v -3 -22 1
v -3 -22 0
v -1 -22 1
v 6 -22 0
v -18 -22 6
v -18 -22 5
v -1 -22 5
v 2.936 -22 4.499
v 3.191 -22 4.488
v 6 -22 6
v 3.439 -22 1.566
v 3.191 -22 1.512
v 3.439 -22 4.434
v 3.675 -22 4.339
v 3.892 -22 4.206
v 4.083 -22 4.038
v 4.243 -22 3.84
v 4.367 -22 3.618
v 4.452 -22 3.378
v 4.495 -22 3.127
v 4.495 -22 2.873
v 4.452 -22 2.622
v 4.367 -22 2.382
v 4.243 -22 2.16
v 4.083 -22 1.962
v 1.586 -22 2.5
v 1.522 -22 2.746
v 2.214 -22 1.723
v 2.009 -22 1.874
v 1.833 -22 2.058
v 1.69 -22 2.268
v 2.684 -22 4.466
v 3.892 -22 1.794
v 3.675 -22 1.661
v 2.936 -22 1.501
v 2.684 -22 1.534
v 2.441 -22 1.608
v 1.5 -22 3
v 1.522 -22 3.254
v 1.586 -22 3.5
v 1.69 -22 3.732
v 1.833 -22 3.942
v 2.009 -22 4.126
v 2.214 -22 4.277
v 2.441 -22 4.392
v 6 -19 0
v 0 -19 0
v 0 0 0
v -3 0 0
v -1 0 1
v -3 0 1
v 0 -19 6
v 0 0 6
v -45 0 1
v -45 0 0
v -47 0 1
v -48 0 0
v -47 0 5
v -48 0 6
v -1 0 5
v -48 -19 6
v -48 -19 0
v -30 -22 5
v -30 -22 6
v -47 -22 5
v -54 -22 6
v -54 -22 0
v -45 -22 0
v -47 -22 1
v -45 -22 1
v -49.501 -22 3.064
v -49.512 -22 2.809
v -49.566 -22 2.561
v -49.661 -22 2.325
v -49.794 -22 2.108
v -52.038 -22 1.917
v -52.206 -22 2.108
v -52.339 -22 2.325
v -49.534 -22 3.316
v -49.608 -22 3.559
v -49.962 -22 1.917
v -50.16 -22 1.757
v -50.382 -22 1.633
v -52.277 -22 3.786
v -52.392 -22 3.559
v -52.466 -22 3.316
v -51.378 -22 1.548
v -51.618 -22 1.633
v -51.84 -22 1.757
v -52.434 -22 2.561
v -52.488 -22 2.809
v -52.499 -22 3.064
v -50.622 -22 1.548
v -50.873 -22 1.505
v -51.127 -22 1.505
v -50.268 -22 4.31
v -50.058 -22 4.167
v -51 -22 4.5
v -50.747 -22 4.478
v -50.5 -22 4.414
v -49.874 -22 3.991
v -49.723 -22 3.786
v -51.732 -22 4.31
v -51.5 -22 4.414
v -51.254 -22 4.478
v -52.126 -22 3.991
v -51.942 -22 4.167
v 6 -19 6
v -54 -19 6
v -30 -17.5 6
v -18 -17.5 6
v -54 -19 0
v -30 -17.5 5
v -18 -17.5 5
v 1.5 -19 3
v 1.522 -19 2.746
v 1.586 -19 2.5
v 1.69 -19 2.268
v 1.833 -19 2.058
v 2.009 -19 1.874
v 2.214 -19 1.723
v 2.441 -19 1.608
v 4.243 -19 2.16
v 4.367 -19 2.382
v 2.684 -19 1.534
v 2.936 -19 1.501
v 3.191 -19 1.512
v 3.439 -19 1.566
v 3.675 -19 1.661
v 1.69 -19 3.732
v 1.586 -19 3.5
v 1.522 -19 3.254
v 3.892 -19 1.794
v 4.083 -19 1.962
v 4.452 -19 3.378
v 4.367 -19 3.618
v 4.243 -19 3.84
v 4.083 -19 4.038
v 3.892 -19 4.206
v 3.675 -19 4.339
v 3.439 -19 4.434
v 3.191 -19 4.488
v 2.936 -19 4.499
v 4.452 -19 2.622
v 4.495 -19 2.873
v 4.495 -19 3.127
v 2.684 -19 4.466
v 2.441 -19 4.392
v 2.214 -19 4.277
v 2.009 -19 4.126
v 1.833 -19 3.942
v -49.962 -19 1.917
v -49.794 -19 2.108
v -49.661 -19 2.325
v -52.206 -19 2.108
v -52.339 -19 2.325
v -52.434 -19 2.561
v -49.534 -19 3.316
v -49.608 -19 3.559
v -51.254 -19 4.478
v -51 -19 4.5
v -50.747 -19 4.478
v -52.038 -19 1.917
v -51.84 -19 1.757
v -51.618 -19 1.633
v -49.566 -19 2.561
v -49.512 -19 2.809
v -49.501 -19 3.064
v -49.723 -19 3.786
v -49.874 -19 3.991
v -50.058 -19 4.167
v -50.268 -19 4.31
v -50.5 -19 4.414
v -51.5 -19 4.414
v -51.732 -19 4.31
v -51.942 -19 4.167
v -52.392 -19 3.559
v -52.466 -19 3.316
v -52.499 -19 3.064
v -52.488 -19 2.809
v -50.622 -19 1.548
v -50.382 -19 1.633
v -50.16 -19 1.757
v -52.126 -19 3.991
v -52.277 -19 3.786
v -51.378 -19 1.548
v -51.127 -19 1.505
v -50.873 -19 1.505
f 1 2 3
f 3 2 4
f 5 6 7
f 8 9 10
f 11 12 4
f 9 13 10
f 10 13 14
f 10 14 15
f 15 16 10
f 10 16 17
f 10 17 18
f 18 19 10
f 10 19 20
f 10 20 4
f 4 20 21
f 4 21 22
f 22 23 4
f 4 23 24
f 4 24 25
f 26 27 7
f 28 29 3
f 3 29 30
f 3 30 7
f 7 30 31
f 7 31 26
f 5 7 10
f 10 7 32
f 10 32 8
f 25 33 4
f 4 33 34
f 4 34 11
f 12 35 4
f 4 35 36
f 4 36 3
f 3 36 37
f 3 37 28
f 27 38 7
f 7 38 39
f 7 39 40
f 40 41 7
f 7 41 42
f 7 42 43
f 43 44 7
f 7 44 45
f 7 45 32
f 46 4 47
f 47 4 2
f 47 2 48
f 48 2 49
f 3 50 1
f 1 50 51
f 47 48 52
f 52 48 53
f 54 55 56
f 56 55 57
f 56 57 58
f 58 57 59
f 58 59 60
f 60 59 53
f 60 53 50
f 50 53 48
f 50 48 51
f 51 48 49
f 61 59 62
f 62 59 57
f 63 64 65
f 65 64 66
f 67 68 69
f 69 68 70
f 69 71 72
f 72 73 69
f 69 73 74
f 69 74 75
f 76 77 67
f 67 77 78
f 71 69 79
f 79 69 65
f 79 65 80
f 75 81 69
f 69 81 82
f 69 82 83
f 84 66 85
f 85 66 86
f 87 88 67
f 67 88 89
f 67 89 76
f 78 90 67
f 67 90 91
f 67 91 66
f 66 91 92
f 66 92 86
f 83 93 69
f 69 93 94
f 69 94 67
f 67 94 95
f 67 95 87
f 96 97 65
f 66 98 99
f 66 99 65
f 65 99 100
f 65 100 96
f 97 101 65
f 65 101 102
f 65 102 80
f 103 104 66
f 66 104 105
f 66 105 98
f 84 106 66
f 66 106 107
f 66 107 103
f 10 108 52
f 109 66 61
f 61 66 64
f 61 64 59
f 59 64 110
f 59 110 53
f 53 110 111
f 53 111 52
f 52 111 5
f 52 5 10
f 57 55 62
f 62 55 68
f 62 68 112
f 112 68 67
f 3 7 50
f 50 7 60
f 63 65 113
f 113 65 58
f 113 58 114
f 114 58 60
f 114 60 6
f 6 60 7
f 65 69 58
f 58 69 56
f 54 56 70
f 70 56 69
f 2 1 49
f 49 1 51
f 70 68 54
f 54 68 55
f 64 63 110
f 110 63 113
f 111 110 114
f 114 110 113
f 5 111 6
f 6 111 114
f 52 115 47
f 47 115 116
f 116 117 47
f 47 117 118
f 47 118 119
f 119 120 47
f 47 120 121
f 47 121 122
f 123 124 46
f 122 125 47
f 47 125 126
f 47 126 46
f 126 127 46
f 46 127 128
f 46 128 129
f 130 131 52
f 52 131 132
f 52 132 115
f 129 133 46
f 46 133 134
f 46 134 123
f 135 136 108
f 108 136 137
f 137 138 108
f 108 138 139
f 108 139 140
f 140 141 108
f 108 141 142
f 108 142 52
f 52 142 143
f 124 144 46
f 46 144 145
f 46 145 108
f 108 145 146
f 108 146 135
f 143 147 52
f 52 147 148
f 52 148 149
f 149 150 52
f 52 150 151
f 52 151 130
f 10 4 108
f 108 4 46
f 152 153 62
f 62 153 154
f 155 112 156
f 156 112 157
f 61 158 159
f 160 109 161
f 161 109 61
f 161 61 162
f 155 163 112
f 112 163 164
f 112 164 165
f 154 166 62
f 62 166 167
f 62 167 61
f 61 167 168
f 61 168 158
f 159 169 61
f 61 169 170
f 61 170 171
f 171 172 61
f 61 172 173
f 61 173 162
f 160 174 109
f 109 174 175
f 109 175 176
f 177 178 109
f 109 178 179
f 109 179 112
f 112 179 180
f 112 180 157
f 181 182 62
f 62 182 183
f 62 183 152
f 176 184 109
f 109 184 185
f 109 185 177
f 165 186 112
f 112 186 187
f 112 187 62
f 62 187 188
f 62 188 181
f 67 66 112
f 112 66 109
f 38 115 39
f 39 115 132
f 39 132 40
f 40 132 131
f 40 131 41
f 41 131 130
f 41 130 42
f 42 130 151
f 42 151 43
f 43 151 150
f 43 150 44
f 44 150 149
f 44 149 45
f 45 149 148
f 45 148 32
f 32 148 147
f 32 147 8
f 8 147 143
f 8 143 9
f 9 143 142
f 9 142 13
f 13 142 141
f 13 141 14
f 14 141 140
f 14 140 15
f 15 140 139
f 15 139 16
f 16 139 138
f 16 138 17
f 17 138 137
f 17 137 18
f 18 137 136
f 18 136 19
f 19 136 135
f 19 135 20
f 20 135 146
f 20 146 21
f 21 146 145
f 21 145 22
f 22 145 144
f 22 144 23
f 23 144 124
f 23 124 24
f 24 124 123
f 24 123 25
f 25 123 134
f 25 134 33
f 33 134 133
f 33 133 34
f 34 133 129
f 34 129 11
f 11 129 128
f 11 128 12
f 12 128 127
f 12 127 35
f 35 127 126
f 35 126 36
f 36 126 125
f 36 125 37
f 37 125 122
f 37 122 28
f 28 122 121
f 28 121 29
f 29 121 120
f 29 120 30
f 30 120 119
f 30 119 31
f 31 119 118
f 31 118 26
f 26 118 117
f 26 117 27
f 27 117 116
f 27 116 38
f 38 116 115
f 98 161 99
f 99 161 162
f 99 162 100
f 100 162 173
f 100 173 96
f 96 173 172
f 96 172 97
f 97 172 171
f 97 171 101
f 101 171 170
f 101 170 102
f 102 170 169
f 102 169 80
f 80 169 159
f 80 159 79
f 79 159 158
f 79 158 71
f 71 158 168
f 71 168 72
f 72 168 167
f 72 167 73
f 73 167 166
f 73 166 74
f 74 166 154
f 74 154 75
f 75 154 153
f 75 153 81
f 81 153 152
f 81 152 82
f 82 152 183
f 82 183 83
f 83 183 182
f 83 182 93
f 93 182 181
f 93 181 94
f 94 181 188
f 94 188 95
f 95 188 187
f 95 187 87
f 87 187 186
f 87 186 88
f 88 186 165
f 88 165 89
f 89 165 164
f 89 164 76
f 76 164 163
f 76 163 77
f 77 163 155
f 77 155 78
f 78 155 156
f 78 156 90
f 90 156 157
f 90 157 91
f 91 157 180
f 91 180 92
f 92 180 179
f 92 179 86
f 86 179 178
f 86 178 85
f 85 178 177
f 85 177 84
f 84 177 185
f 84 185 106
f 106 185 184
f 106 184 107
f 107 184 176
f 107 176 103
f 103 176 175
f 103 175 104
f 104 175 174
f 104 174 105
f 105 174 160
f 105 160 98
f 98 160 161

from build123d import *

# Parameters (mm, degrees)
SKETCH_1_W          = 48
SKETCH_1_H          = 22
EXTRUDE_1_DEPTH     = 6
SKETCH_4_W          = 46
SKETCH_4_H          = 4
CUT_EXTRUDE_2_DEPTH = 22
SKETCH_5_W          = 42
SKETCH_5_H          = 1
CUT_EXTRUDE_3_DEPTH = 22
SKETCH_9_W          = 12
SKETCH_9_H          = 4.5
CUT_EXTRUDE_5_DEPTH = 6
SKETCH_10_W         = 6
SKETCH_10_H         = 3
EXTRUDE_2_DEPTH     = 6
SKETCH_11_W         = 6
SKETCH_11_H         = 3
EXTRUDE_3_DEPTH     = 6
SKETCH_12_R         = 1.5
CUT_EXTRUDE_6_DEPTH = 3
SKETCH_14_R         = 1.5
CUT_EXTRUDE_7_DEPTH = 3


with BuildPart() as part:
    # 草圖1 → 填料-伸長1 (new body)
    with BuildSketch(Plane.XY):
        with Locations((-24, -11)):
            Rectangle(SKETCH_1_W, SKETCH_1_H)
    extrude(amount=EXTRUDE_1_DEPTH)

    # 草圖4 → 除料-伸長2 (cut)
    with BuildSketch(Plane(origin=(0, 0, 0), x_dir=(1, 0, 0), z_dir=(0, 1, 0))):
        with Locations((-24, -3)):
            Rectangle(SKETCH_4_W, SKETCH_4_H)
    extrude(amount=-CUT_EXTRUDE_2_DEPTH, mode=Mode.SUBTRACT)

    # 草圖5 → 除料-伸長3 (cut)
    with BuildSketch(Plane(origin=(0, 0, 0), x_dir=(1, 0, 0), z_dir=(0, 1, 0))):
        with Locations((-24, -0.5)):
            Rectangle(SKETCH_5_W, SKETCH_5_H)
    extrude(amount=-CUT_EXTRUDE_3_DEPTH, mode=Mode.SUBTRACT)

    # 草圖9 → 除料-伸長5 (cut)
    with BuildSketch(Plane.XY.offset(6)):
        with Locations((-24, -19.75)):
            Rectangle(SKETCH_9_W, SKETCH_9_H)
    extrude(amount=-CUT_EXTRUDE_5_DEPTH, mode=Mode.SUBTRACT)

    # 草圖10 → 填料-伸長2 (add)
    with BuildSketch(Plane(origin=(0, 0, 0), x_dir=(0, 0, -1), z_dir=(1, 0, 0))):
        with Locations((-3, -20.5)):
            Rectangle(SKETCH_10_W, SKETCH_10_H)
    extrude(amount=EXTRUDE_2_DEPTH)

    # 草圖11 → 填料-伸長3 (add)
    with BuildSketch(Plane.ZY.offset(48)):
        with Locations((3, -20.5)):
            Rectangle(SKETCH_11_W, SKETCH_11_H)
    extrude(amount=EXTRUDE_3_DEPTH)

    # 草圖12 → 除料-伸長6 (cut)
    with BuildSketch(Plane(origin=(0, -19, 0), x_dir=(1, 0, 0), z_dir=(0, 1, 0))):
        with Locations(Location((3, -3, 0), (0, 0, 180))):
            Circle(SKETCH_12_R)
    extrude(amount=-CUT_EXTRUDE_6_DEPTH, mode=Mode.SUBTRACT)

    # 草圖14 → 除料-伸長7 (cut)
    with BuildSketch(Plane(origin=(0, -19, 0), x_dir=(1, 0, 0), z_dir=(0, 1, 0))):
        with Locations(Location((-51, -3, 0), (0, 0, 270))):
            Circle(SKETCH_14_R)
    extrude(amount=-CUT_EXTRUDE_7_DEPTH, mode=Mode.SUBTRACT)


solid = part.part
